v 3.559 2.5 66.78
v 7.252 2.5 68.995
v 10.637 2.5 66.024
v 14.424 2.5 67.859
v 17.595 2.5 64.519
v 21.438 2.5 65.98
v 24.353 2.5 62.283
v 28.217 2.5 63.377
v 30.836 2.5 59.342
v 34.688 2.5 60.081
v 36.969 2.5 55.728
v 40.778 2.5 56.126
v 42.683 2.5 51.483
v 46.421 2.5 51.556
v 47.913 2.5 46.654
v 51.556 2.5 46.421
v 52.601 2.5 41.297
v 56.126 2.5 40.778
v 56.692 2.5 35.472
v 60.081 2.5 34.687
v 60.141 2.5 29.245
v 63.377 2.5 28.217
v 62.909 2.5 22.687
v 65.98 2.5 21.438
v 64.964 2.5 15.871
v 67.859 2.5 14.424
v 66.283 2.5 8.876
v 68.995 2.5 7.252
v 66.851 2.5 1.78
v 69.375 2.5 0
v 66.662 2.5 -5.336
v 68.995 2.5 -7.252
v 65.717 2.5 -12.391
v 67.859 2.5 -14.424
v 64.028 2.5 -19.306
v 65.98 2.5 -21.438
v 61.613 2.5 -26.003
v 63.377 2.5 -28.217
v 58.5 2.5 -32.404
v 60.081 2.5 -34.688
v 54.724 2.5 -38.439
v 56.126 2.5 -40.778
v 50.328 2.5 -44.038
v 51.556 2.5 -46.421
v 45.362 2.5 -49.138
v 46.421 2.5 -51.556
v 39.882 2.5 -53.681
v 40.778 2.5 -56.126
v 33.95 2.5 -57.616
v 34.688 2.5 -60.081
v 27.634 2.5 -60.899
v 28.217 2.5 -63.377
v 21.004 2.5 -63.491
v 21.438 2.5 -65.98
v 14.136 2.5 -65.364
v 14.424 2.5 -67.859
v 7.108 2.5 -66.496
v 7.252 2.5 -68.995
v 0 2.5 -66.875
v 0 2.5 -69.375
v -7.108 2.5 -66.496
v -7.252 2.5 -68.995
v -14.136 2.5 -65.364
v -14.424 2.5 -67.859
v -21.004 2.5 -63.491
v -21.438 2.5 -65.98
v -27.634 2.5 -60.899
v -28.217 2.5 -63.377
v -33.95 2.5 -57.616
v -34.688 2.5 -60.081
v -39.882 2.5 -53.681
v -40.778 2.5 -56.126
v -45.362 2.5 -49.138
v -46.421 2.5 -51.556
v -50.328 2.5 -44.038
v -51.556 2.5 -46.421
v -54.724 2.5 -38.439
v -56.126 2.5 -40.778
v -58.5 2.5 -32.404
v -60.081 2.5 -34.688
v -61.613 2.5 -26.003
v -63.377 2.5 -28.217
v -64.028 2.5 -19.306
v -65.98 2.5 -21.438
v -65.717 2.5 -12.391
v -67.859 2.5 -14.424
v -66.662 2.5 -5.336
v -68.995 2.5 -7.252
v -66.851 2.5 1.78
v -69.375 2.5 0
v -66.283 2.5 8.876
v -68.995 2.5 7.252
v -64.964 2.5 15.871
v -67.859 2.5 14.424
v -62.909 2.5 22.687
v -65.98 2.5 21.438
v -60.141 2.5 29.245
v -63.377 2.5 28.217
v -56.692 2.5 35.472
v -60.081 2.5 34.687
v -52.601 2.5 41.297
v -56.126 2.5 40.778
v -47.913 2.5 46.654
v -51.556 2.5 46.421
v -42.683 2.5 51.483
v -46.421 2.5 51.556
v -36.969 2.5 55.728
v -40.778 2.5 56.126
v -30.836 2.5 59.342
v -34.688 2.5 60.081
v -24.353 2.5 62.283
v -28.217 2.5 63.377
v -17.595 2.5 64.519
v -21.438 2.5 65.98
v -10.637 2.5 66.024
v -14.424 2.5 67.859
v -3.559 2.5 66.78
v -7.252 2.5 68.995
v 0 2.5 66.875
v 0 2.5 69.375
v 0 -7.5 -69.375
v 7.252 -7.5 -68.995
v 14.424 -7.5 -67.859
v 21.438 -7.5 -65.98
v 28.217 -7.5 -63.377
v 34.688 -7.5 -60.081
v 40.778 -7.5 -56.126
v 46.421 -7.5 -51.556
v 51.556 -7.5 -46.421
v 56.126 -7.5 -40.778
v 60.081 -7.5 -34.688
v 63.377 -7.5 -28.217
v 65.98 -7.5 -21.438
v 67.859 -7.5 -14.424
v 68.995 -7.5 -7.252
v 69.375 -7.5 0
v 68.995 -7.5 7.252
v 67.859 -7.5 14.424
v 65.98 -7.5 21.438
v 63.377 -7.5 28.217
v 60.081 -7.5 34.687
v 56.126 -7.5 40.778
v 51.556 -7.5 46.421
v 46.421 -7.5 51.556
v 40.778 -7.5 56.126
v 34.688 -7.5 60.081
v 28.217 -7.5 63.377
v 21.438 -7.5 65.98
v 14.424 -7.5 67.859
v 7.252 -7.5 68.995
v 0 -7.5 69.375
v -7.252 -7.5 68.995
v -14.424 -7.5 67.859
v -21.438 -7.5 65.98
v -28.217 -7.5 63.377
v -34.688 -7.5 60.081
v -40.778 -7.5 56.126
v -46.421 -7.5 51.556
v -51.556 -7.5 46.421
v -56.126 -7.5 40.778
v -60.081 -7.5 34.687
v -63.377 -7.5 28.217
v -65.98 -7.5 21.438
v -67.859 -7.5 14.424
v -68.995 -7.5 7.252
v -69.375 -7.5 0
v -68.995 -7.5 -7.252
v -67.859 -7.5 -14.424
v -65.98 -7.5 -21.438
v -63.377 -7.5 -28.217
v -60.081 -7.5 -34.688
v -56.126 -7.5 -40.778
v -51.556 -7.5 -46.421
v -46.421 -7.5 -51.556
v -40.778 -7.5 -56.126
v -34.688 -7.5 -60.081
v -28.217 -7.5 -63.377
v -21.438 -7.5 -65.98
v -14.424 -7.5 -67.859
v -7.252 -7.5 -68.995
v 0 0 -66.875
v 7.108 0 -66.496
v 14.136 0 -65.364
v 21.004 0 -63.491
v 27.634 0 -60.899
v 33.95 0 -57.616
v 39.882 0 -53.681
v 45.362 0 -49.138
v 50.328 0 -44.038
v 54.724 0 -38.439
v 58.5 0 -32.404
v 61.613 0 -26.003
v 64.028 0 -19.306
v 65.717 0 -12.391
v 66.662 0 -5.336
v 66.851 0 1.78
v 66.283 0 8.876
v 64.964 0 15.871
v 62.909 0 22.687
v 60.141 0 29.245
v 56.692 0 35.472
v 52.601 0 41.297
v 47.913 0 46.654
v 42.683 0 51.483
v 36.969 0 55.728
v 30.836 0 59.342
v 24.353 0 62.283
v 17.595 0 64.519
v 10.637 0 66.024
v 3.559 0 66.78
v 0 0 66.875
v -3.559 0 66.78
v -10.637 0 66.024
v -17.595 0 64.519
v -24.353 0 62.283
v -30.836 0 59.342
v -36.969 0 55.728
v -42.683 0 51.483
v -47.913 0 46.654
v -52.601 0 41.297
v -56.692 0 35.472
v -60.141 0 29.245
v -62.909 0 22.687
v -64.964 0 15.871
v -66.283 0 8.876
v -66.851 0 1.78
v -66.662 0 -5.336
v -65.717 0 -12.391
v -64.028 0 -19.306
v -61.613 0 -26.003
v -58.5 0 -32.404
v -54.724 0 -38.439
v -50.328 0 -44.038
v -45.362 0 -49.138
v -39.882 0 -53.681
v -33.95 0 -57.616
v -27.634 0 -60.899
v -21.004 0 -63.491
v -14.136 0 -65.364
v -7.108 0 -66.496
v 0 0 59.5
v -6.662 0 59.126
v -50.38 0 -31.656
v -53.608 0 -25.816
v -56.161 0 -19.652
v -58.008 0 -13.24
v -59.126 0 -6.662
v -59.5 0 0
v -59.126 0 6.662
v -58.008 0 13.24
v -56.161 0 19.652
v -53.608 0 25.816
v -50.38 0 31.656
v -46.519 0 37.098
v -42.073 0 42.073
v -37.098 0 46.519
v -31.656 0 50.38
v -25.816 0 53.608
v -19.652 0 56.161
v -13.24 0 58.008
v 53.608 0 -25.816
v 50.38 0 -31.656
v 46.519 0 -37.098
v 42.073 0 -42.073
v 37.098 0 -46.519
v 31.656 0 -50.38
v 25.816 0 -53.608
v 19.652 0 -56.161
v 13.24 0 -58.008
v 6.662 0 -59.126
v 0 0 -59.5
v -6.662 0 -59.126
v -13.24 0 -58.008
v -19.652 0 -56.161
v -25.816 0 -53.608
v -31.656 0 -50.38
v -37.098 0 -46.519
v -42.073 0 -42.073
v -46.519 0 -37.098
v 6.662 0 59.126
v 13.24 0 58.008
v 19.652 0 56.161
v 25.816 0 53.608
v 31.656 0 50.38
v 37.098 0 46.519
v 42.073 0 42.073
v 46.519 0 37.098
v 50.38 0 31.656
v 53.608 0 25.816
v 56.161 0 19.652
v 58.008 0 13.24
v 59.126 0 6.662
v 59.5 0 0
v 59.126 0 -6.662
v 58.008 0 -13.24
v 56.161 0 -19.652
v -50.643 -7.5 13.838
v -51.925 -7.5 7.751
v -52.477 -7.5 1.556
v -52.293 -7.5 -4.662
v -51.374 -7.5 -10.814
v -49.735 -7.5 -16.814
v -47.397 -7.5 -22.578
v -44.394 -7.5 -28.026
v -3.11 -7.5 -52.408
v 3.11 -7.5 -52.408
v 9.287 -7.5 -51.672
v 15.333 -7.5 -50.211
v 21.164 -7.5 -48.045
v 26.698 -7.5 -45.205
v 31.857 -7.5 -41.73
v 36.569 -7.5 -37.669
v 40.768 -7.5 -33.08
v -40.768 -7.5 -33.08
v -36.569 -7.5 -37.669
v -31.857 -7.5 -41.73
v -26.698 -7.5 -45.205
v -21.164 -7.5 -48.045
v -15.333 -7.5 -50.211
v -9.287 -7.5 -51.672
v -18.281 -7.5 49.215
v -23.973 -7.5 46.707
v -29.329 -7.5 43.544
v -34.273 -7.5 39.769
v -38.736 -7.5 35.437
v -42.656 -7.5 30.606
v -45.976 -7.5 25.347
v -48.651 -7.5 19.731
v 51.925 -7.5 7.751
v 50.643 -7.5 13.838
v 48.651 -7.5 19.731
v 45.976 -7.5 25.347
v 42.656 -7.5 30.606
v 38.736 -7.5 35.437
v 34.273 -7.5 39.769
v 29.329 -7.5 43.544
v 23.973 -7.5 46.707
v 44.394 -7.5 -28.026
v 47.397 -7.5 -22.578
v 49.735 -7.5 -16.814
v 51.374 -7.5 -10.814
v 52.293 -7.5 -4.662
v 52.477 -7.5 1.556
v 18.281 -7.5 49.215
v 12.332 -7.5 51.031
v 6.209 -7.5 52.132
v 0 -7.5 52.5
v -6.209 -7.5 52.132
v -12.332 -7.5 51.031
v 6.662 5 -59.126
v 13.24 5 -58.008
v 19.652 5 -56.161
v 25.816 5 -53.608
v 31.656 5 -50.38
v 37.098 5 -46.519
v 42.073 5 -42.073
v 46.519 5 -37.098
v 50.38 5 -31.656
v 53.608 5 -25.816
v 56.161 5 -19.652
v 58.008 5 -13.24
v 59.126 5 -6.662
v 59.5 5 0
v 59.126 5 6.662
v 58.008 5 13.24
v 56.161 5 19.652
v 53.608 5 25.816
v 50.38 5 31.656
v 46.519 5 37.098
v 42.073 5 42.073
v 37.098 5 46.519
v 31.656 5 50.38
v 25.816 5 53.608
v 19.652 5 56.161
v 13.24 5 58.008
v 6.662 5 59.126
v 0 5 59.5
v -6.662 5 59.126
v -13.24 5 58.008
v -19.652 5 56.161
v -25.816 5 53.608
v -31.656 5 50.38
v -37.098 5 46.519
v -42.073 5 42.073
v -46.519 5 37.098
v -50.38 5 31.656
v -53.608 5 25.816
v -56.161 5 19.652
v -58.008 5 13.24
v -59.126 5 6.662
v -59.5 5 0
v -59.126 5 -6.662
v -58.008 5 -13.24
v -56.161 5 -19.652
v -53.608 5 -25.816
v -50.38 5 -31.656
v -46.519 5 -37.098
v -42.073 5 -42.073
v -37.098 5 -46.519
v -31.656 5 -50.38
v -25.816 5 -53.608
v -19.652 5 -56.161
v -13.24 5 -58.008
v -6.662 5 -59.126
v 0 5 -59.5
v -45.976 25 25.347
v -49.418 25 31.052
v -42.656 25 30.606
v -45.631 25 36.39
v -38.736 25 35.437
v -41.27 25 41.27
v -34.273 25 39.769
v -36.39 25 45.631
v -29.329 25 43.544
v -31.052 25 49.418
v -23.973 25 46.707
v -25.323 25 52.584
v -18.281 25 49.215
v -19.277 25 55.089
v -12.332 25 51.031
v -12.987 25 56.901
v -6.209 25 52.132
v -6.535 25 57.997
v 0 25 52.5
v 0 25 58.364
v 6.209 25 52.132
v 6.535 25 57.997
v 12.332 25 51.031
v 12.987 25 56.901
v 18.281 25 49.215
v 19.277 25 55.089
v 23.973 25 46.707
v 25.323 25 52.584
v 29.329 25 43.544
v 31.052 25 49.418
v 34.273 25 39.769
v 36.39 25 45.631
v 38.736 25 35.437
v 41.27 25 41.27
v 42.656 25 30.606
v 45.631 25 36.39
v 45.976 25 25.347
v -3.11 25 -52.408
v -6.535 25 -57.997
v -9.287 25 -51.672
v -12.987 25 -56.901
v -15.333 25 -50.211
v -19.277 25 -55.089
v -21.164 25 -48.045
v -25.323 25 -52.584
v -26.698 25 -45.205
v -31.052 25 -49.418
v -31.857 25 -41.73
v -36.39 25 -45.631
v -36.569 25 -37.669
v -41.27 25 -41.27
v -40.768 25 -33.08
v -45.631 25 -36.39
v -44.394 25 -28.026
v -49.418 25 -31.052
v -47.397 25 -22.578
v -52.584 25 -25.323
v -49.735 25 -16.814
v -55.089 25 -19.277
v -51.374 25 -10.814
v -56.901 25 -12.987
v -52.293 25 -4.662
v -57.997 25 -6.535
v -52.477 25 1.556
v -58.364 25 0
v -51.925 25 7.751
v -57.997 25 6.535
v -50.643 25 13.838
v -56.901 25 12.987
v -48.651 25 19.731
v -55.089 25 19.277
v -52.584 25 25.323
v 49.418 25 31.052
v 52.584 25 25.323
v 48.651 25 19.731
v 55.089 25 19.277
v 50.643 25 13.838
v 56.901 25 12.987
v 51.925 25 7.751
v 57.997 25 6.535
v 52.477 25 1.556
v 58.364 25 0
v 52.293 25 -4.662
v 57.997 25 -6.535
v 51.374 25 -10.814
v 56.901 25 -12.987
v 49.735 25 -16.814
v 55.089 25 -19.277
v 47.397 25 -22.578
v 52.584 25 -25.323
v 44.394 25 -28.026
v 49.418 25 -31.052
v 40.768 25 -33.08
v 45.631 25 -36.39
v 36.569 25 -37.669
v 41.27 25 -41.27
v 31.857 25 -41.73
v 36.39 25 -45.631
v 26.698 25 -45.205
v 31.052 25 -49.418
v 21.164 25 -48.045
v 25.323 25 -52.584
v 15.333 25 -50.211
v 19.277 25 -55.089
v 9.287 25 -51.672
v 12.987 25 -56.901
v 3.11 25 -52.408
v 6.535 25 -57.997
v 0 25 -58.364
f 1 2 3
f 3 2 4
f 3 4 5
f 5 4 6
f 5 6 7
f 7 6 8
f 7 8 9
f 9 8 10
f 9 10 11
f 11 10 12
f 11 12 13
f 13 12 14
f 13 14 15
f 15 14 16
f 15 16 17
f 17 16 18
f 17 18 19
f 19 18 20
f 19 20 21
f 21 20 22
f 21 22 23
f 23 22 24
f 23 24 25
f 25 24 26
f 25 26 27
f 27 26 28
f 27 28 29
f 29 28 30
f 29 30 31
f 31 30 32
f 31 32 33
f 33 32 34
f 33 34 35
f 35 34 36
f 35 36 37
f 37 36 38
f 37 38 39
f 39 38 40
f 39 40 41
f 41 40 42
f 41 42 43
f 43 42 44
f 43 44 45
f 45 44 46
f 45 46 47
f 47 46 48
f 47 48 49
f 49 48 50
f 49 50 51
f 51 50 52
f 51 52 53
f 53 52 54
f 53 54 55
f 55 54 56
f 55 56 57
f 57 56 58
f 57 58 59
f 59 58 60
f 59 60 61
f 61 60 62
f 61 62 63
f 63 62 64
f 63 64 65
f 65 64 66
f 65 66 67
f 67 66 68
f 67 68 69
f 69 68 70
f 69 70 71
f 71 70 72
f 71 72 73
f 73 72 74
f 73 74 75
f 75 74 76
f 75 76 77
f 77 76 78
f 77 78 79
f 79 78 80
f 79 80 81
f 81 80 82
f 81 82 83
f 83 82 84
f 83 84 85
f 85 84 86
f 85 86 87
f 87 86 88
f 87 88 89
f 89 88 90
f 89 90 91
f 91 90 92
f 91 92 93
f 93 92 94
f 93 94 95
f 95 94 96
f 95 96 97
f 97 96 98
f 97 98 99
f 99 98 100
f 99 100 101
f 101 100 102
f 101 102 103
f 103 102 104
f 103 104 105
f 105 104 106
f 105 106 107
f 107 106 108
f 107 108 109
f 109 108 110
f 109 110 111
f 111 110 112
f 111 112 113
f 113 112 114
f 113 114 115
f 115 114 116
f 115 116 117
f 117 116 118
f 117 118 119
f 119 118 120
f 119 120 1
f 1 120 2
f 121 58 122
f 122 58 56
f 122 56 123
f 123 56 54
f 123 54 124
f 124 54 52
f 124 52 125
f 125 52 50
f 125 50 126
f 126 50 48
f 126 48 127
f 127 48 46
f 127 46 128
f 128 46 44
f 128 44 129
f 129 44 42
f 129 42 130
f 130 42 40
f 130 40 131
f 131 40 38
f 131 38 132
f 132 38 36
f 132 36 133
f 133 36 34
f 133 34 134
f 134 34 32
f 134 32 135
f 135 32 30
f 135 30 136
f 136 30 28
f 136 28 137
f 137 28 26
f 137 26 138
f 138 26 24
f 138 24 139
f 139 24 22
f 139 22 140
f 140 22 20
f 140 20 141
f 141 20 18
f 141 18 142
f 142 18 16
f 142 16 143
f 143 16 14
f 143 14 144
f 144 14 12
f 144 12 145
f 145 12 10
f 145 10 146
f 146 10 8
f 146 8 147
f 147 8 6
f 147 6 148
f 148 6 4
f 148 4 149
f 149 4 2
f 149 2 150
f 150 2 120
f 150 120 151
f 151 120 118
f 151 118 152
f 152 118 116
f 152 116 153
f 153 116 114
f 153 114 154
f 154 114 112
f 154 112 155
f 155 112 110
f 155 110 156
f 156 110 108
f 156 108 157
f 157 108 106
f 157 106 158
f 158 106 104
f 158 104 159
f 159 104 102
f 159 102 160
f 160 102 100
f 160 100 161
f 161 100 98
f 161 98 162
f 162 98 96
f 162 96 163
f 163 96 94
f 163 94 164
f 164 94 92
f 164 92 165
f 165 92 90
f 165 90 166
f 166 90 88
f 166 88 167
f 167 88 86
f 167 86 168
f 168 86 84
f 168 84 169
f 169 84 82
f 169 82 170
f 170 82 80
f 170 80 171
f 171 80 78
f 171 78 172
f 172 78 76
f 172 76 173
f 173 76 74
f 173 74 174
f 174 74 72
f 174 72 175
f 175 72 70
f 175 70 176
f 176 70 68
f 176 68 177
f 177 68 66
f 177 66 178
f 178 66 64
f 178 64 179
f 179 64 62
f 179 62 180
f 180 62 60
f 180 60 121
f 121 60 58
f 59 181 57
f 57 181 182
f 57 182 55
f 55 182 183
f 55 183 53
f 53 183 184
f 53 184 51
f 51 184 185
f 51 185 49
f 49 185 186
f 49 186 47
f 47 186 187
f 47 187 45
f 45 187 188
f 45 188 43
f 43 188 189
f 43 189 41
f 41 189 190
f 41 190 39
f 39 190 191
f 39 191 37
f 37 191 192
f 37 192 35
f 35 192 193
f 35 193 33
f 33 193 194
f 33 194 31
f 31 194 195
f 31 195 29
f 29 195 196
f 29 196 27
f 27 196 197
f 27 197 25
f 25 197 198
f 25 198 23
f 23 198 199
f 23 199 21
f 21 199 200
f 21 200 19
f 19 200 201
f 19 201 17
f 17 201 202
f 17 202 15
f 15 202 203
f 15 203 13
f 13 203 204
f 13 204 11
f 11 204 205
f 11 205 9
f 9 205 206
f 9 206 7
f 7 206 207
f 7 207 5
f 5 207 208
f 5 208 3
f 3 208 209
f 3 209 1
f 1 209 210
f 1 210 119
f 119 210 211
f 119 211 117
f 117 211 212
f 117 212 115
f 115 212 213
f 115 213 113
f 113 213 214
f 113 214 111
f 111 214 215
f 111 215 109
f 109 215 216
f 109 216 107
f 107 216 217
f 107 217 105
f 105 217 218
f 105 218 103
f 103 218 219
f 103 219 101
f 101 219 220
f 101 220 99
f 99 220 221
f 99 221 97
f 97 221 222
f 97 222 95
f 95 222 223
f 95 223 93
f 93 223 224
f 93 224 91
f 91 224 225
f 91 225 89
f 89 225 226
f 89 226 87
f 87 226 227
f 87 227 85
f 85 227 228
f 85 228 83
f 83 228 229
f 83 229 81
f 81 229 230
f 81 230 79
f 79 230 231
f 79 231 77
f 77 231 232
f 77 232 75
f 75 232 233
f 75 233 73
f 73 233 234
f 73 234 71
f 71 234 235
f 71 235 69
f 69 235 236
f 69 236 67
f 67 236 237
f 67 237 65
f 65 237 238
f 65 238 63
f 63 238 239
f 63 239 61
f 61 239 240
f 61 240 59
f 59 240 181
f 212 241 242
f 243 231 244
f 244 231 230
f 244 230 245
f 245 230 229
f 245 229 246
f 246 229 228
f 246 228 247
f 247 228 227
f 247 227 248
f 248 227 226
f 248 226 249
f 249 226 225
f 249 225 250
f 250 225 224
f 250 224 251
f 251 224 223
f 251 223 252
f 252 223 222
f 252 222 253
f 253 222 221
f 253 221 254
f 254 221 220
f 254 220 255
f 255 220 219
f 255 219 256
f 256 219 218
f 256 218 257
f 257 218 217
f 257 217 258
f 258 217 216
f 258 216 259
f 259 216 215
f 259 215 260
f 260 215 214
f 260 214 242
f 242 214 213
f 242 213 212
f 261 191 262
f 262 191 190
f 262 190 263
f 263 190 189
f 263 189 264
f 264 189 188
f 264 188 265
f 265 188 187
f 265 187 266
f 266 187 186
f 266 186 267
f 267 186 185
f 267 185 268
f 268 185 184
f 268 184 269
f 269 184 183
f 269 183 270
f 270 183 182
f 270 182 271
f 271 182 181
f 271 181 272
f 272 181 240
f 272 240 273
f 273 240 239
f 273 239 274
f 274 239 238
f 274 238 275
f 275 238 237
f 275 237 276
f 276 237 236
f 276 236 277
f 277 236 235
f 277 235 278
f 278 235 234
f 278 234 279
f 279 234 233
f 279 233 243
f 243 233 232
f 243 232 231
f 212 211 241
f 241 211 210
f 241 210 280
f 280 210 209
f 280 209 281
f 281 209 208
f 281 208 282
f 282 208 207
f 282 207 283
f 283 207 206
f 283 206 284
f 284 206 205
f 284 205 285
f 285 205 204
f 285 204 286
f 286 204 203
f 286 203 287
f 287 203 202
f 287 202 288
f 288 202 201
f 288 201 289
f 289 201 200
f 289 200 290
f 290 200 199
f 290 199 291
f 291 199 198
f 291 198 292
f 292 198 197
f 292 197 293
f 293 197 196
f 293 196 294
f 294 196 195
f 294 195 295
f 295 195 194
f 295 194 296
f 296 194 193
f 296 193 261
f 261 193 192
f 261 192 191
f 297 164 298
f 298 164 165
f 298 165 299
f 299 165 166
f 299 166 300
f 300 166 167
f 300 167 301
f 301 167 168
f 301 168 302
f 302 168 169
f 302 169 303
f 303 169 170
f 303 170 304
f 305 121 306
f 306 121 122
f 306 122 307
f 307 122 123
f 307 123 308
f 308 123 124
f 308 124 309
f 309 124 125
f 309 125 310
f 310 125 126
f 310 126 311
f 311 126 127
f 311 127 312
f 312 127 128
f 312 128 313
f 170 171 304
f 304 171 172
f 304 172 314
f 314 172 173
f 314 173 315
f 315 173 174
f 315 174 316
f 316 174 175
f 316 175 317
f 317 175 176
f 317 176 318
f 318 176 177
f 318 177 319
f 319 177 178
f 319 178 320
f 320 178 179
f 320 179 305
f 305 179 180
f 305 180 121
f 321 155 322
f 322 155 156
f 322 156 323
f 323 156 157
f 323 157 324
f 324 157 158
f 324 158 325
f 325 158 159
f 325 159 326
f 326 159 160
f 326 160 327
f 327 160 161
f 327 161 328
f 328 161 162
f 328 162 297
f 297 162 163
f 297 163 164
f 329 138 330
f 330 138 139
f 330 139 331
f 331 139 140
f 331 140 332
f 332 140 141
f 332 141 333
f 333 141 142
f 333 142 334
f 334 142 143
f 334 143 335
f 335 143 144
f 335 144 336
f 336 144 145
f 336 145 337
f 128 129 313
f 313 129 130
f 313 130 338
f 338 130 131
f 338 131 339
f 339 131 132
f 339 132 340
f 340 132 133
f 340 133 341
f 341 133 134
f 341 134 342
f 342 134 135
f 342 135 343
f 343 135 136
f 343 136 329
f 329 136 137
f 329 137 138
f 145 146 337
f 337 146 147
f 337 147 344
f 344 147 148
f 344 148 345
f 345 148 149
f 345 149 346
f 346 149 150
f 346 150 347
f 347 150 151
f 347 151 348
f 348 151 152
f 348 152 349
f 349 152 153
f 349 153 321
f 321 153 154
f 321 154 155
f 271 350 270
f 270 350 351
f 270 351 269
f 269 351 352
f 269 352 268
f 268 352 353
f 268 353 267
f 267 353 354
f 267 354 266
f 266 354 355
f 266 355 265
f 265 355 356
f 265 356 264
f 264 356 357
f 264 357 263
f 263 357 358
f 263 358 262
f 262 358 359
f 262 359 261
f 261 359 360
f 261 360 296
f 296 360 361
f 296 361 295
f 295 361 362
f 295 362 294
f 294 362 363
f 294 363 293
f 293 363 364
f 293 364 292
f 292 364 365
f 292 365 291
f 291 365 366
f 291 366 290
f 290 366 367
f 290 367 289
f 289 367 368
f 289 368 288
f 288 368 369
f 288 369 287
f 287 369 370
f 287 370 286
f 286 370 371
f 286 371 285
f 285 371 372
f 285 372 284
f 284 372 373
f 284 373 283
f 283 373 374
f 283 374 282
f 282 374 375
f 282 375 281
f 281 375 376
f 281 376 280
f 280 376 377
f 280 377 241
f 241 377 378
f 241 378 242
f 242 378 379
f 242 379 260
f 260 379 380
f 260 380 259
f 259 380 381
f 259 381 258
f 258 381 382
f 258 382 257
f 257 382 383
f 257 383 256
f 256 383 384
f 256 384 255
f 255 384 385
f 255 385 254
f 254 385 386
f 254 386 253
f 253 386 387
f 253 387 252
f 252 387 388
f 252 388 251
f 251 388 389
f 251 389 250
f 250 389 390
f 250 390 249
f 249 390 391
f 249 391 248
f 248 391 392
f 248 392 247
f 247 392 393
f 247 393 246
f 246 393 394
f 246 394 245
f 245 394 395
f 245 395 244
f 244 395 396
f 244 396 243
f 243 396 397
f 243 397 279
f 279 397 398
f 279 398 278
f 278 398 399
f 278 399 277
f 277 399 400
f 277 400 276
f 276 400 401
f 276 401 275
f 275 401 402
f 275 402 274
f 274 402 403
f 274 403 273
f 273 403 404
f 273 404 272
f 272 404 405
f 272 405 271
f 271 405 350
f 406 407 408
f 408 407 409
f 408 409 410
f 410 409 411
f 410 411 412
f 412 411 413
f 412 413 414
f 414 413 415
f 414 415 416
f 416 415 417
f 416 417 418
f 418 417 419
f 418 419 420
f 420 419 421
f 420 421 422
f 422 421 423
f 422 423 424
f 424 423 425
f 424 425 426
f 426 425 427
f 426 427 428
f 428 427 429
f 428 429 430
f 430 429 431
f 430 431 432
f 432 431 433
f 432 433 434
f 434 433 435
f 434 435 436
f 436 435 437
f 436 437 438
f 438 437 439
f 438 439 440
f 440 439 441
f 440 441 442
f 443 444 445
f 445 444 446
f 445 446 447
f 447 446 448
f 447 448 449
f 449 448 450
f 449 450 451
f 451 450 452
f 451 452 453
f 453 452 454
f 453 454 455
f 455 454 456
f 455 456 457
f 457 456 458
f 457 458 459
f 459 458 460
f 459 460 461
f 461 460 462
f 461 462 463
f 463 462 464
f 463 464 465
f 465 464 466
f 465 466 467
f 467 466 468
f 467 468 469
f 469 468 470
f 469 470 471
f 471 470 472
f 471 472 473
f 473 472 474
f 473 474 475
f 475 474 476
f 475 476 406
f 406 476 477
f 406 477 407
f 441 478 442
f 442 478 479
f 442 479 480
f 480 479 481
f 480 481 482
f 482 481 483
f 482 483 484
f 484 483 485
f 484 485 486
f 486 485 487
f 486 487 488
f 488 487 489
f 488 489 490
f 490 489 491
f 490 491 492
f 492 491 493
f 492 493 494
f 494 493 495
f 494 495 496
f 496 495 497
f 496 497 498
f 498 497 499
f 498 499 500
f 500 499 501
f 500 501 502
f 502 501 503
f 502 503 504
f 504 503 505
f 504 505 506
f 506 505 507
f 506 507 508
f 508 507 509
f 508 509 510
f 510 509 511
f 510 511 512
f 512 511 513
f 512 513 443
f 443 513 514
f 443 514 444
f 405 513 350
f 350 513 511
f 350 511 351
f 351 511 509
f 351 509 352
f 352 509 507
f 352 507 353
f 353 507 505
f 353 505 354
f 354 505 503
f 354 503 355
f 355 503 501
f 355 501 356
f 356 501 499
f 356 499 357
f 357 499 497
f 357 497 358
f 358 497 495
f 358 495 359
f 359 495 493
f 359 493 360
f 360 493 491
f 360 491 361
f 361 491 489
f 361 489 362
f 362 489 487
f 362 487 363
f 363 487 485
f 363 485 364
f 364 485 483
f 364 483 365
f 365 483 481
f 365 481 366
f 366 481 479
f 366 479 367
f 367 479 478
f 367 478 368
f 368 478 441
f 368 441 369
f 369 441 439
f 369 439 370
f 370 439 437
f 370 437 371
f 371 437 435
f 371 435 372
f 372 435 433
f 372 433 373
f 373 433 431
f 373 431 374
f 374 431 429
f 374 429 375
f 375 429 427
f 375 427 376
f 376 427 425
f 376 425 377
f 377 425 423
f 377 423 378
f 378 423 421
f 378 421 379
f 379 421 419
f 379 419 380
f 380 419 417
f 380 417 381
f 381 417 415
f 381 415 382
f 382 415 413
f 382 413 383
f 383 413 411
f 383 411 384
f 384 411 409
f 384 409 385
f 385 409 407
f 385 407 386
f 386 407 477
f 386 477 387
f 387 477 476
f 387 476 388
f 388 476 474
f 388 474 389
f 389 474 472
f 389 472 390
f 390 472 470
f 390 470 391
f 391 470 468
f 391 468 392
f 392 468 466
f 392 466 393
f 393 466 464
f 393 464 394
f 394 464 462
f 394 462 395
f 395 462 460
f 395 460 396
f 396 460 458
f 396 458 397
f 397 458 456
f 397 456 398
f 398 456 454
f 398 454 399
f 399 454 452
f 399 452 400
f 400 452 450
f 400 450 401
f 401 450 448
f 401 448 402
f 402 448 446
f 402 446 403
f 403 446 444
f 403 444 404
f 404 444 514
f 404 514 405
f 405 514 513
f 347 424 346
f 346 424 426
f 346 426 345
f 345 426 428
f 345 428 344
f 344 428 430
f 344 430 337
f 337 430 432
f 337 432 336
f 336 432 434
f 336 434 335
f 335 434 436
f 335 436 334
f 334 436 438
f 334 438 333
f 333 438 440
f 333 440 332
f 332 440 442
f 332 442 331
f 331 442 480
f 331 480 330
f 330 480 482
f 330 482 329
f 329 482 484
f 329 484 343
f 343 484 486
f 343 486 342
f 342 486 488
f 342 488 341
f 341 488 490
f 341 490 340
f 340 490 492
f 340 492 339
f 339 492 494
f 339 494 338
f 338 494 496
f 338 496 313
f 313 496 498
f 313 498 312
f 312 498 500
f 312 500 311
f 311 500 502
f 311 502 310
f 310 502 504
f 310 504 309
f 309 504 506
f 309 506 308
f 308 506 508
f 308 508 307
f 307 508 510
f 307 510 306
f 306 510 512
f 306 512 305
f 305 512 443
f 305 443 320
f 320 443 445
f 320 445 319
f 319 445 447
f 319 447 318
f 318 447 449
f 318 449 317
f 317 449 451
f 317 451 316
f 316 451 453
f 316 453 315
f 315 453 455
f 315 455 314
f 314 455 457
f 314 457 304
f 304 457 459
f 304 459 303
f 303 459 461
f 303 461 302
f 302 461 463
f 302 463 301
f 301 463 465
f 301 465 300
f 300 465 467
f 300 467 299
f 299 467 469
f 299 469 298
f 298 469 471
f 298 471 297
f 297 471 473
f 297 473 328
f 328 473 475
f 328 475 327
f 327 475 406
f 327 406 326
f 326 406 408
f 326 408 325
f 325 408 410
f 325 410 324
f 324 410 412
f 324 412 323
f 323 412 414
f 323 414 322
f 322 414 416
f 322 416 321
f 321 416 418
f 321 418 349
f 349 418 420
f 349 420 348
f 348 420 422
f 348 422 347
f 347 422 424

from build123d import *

# Parameters (mm, degrees)
SKETCH1_R               = 69.375
SKETCH1_R_2             = 66.875
BOSS_EXTRUDE1_DEPTH     = 2.5
BOSS_EXTRUDE2_START     = -7.5
SKETCH2_R               = 69.375
BOSS_EXTRUDE2_DEPTH     = 7.5
SKETCH3_R               = 59.5
BOSS_EXTRUDE3_DEPTH     = 25
CHAMFER1_SIZE           = 20
CHAMFER1_SIZE2          = 1.135682303
CUT_EXTRUDE1_DEPTH      = 104.353912601
CUT_EXTRUDE1_DEPTH_BACK = 104.353912601
SKETCH4_R               = 52.5


with BuildPart() as part:
    # Sketch1 → Boss-Extrude1 (new body)
    with BuildSketch(Plane(origin=(0, 0, 0), x_dir=(1, 0, 0), z_dir=(0, 1, 0))):
        with Locations(Location((0, 0, 0), (0, 0, 270))):
            Circle(SKETCH1_R)
        with Locations(Location((0, 0, 0), (0, 0, 270))):
            Circle(SKETCH1_R_2, mode=Mode.SUBTRACT)
    extrude(amount=BOSS_EXTRUDE1_DEPTH)

    # Sketch2 → Boss-Extrude2 (add)
    with BuildSketch(Plane(origin=(0, 0, 0), x_dir=(1, 0, 0), z_dir=(0, 1, 0)).offset(BOSS_EXTRUDE2_START)):
        with Locations(Location((0, 0, 0), (0, 0, 270))):
            Circle(SKETCH2_R)
    extrude(amount=BOSS_EXTRUDE2_DEPTH)

    # Sketch3 → Boss-Extrude3 (add)
    with BuildSketch(Plane(origin=(0, 0, 0), x_dir=(1, 0, 0), z_dir=(0, 1, 0))):
        with Locations(Location((0, 0, 0), (0, 0, 270))):
            Circle(SKETCH3_R)
    extrude(amount=BOSS_EXTRUDE3_DEPTH)

    # Chamfer1
    chamfer1_edges = [part.edges().sort_by_distance(p)[0] for p in [
        (0, 25, -59.5),
    ]]
    chamfer1_side = [part.faces().sort_by_distance(p)[0] for p in [
        (0, 12.5, -59.5),
    ]]
    chamfer(chamfer1_edges, length=CHAMFER1_SIZE, length2=CHAMFER1_SIZE2, reference=chamfer1_side[0])

    # Sketch4 → Cut-Extrude1 (cut, two sides: drawn at the far end of the back side and taken through both)
    with BuildSketch(Plane(origin=(0, 25, 0), x_dir=(1, 0, 0), z_dir=(0, 1, 0)).offset(-CUT_EXTRUDE1_DEPTH_BACK)):
        with Locations(Location((0, 0, 0), (0, 0, 270))):
            Circle(SKETCH4_R)
    extrude(amount=CUT_EXTRUDE1_DEPTH + CUT_EXTRUDE1_DEPTH_BACK, mode=Mode.SUBTRACT)


solid = part.part
